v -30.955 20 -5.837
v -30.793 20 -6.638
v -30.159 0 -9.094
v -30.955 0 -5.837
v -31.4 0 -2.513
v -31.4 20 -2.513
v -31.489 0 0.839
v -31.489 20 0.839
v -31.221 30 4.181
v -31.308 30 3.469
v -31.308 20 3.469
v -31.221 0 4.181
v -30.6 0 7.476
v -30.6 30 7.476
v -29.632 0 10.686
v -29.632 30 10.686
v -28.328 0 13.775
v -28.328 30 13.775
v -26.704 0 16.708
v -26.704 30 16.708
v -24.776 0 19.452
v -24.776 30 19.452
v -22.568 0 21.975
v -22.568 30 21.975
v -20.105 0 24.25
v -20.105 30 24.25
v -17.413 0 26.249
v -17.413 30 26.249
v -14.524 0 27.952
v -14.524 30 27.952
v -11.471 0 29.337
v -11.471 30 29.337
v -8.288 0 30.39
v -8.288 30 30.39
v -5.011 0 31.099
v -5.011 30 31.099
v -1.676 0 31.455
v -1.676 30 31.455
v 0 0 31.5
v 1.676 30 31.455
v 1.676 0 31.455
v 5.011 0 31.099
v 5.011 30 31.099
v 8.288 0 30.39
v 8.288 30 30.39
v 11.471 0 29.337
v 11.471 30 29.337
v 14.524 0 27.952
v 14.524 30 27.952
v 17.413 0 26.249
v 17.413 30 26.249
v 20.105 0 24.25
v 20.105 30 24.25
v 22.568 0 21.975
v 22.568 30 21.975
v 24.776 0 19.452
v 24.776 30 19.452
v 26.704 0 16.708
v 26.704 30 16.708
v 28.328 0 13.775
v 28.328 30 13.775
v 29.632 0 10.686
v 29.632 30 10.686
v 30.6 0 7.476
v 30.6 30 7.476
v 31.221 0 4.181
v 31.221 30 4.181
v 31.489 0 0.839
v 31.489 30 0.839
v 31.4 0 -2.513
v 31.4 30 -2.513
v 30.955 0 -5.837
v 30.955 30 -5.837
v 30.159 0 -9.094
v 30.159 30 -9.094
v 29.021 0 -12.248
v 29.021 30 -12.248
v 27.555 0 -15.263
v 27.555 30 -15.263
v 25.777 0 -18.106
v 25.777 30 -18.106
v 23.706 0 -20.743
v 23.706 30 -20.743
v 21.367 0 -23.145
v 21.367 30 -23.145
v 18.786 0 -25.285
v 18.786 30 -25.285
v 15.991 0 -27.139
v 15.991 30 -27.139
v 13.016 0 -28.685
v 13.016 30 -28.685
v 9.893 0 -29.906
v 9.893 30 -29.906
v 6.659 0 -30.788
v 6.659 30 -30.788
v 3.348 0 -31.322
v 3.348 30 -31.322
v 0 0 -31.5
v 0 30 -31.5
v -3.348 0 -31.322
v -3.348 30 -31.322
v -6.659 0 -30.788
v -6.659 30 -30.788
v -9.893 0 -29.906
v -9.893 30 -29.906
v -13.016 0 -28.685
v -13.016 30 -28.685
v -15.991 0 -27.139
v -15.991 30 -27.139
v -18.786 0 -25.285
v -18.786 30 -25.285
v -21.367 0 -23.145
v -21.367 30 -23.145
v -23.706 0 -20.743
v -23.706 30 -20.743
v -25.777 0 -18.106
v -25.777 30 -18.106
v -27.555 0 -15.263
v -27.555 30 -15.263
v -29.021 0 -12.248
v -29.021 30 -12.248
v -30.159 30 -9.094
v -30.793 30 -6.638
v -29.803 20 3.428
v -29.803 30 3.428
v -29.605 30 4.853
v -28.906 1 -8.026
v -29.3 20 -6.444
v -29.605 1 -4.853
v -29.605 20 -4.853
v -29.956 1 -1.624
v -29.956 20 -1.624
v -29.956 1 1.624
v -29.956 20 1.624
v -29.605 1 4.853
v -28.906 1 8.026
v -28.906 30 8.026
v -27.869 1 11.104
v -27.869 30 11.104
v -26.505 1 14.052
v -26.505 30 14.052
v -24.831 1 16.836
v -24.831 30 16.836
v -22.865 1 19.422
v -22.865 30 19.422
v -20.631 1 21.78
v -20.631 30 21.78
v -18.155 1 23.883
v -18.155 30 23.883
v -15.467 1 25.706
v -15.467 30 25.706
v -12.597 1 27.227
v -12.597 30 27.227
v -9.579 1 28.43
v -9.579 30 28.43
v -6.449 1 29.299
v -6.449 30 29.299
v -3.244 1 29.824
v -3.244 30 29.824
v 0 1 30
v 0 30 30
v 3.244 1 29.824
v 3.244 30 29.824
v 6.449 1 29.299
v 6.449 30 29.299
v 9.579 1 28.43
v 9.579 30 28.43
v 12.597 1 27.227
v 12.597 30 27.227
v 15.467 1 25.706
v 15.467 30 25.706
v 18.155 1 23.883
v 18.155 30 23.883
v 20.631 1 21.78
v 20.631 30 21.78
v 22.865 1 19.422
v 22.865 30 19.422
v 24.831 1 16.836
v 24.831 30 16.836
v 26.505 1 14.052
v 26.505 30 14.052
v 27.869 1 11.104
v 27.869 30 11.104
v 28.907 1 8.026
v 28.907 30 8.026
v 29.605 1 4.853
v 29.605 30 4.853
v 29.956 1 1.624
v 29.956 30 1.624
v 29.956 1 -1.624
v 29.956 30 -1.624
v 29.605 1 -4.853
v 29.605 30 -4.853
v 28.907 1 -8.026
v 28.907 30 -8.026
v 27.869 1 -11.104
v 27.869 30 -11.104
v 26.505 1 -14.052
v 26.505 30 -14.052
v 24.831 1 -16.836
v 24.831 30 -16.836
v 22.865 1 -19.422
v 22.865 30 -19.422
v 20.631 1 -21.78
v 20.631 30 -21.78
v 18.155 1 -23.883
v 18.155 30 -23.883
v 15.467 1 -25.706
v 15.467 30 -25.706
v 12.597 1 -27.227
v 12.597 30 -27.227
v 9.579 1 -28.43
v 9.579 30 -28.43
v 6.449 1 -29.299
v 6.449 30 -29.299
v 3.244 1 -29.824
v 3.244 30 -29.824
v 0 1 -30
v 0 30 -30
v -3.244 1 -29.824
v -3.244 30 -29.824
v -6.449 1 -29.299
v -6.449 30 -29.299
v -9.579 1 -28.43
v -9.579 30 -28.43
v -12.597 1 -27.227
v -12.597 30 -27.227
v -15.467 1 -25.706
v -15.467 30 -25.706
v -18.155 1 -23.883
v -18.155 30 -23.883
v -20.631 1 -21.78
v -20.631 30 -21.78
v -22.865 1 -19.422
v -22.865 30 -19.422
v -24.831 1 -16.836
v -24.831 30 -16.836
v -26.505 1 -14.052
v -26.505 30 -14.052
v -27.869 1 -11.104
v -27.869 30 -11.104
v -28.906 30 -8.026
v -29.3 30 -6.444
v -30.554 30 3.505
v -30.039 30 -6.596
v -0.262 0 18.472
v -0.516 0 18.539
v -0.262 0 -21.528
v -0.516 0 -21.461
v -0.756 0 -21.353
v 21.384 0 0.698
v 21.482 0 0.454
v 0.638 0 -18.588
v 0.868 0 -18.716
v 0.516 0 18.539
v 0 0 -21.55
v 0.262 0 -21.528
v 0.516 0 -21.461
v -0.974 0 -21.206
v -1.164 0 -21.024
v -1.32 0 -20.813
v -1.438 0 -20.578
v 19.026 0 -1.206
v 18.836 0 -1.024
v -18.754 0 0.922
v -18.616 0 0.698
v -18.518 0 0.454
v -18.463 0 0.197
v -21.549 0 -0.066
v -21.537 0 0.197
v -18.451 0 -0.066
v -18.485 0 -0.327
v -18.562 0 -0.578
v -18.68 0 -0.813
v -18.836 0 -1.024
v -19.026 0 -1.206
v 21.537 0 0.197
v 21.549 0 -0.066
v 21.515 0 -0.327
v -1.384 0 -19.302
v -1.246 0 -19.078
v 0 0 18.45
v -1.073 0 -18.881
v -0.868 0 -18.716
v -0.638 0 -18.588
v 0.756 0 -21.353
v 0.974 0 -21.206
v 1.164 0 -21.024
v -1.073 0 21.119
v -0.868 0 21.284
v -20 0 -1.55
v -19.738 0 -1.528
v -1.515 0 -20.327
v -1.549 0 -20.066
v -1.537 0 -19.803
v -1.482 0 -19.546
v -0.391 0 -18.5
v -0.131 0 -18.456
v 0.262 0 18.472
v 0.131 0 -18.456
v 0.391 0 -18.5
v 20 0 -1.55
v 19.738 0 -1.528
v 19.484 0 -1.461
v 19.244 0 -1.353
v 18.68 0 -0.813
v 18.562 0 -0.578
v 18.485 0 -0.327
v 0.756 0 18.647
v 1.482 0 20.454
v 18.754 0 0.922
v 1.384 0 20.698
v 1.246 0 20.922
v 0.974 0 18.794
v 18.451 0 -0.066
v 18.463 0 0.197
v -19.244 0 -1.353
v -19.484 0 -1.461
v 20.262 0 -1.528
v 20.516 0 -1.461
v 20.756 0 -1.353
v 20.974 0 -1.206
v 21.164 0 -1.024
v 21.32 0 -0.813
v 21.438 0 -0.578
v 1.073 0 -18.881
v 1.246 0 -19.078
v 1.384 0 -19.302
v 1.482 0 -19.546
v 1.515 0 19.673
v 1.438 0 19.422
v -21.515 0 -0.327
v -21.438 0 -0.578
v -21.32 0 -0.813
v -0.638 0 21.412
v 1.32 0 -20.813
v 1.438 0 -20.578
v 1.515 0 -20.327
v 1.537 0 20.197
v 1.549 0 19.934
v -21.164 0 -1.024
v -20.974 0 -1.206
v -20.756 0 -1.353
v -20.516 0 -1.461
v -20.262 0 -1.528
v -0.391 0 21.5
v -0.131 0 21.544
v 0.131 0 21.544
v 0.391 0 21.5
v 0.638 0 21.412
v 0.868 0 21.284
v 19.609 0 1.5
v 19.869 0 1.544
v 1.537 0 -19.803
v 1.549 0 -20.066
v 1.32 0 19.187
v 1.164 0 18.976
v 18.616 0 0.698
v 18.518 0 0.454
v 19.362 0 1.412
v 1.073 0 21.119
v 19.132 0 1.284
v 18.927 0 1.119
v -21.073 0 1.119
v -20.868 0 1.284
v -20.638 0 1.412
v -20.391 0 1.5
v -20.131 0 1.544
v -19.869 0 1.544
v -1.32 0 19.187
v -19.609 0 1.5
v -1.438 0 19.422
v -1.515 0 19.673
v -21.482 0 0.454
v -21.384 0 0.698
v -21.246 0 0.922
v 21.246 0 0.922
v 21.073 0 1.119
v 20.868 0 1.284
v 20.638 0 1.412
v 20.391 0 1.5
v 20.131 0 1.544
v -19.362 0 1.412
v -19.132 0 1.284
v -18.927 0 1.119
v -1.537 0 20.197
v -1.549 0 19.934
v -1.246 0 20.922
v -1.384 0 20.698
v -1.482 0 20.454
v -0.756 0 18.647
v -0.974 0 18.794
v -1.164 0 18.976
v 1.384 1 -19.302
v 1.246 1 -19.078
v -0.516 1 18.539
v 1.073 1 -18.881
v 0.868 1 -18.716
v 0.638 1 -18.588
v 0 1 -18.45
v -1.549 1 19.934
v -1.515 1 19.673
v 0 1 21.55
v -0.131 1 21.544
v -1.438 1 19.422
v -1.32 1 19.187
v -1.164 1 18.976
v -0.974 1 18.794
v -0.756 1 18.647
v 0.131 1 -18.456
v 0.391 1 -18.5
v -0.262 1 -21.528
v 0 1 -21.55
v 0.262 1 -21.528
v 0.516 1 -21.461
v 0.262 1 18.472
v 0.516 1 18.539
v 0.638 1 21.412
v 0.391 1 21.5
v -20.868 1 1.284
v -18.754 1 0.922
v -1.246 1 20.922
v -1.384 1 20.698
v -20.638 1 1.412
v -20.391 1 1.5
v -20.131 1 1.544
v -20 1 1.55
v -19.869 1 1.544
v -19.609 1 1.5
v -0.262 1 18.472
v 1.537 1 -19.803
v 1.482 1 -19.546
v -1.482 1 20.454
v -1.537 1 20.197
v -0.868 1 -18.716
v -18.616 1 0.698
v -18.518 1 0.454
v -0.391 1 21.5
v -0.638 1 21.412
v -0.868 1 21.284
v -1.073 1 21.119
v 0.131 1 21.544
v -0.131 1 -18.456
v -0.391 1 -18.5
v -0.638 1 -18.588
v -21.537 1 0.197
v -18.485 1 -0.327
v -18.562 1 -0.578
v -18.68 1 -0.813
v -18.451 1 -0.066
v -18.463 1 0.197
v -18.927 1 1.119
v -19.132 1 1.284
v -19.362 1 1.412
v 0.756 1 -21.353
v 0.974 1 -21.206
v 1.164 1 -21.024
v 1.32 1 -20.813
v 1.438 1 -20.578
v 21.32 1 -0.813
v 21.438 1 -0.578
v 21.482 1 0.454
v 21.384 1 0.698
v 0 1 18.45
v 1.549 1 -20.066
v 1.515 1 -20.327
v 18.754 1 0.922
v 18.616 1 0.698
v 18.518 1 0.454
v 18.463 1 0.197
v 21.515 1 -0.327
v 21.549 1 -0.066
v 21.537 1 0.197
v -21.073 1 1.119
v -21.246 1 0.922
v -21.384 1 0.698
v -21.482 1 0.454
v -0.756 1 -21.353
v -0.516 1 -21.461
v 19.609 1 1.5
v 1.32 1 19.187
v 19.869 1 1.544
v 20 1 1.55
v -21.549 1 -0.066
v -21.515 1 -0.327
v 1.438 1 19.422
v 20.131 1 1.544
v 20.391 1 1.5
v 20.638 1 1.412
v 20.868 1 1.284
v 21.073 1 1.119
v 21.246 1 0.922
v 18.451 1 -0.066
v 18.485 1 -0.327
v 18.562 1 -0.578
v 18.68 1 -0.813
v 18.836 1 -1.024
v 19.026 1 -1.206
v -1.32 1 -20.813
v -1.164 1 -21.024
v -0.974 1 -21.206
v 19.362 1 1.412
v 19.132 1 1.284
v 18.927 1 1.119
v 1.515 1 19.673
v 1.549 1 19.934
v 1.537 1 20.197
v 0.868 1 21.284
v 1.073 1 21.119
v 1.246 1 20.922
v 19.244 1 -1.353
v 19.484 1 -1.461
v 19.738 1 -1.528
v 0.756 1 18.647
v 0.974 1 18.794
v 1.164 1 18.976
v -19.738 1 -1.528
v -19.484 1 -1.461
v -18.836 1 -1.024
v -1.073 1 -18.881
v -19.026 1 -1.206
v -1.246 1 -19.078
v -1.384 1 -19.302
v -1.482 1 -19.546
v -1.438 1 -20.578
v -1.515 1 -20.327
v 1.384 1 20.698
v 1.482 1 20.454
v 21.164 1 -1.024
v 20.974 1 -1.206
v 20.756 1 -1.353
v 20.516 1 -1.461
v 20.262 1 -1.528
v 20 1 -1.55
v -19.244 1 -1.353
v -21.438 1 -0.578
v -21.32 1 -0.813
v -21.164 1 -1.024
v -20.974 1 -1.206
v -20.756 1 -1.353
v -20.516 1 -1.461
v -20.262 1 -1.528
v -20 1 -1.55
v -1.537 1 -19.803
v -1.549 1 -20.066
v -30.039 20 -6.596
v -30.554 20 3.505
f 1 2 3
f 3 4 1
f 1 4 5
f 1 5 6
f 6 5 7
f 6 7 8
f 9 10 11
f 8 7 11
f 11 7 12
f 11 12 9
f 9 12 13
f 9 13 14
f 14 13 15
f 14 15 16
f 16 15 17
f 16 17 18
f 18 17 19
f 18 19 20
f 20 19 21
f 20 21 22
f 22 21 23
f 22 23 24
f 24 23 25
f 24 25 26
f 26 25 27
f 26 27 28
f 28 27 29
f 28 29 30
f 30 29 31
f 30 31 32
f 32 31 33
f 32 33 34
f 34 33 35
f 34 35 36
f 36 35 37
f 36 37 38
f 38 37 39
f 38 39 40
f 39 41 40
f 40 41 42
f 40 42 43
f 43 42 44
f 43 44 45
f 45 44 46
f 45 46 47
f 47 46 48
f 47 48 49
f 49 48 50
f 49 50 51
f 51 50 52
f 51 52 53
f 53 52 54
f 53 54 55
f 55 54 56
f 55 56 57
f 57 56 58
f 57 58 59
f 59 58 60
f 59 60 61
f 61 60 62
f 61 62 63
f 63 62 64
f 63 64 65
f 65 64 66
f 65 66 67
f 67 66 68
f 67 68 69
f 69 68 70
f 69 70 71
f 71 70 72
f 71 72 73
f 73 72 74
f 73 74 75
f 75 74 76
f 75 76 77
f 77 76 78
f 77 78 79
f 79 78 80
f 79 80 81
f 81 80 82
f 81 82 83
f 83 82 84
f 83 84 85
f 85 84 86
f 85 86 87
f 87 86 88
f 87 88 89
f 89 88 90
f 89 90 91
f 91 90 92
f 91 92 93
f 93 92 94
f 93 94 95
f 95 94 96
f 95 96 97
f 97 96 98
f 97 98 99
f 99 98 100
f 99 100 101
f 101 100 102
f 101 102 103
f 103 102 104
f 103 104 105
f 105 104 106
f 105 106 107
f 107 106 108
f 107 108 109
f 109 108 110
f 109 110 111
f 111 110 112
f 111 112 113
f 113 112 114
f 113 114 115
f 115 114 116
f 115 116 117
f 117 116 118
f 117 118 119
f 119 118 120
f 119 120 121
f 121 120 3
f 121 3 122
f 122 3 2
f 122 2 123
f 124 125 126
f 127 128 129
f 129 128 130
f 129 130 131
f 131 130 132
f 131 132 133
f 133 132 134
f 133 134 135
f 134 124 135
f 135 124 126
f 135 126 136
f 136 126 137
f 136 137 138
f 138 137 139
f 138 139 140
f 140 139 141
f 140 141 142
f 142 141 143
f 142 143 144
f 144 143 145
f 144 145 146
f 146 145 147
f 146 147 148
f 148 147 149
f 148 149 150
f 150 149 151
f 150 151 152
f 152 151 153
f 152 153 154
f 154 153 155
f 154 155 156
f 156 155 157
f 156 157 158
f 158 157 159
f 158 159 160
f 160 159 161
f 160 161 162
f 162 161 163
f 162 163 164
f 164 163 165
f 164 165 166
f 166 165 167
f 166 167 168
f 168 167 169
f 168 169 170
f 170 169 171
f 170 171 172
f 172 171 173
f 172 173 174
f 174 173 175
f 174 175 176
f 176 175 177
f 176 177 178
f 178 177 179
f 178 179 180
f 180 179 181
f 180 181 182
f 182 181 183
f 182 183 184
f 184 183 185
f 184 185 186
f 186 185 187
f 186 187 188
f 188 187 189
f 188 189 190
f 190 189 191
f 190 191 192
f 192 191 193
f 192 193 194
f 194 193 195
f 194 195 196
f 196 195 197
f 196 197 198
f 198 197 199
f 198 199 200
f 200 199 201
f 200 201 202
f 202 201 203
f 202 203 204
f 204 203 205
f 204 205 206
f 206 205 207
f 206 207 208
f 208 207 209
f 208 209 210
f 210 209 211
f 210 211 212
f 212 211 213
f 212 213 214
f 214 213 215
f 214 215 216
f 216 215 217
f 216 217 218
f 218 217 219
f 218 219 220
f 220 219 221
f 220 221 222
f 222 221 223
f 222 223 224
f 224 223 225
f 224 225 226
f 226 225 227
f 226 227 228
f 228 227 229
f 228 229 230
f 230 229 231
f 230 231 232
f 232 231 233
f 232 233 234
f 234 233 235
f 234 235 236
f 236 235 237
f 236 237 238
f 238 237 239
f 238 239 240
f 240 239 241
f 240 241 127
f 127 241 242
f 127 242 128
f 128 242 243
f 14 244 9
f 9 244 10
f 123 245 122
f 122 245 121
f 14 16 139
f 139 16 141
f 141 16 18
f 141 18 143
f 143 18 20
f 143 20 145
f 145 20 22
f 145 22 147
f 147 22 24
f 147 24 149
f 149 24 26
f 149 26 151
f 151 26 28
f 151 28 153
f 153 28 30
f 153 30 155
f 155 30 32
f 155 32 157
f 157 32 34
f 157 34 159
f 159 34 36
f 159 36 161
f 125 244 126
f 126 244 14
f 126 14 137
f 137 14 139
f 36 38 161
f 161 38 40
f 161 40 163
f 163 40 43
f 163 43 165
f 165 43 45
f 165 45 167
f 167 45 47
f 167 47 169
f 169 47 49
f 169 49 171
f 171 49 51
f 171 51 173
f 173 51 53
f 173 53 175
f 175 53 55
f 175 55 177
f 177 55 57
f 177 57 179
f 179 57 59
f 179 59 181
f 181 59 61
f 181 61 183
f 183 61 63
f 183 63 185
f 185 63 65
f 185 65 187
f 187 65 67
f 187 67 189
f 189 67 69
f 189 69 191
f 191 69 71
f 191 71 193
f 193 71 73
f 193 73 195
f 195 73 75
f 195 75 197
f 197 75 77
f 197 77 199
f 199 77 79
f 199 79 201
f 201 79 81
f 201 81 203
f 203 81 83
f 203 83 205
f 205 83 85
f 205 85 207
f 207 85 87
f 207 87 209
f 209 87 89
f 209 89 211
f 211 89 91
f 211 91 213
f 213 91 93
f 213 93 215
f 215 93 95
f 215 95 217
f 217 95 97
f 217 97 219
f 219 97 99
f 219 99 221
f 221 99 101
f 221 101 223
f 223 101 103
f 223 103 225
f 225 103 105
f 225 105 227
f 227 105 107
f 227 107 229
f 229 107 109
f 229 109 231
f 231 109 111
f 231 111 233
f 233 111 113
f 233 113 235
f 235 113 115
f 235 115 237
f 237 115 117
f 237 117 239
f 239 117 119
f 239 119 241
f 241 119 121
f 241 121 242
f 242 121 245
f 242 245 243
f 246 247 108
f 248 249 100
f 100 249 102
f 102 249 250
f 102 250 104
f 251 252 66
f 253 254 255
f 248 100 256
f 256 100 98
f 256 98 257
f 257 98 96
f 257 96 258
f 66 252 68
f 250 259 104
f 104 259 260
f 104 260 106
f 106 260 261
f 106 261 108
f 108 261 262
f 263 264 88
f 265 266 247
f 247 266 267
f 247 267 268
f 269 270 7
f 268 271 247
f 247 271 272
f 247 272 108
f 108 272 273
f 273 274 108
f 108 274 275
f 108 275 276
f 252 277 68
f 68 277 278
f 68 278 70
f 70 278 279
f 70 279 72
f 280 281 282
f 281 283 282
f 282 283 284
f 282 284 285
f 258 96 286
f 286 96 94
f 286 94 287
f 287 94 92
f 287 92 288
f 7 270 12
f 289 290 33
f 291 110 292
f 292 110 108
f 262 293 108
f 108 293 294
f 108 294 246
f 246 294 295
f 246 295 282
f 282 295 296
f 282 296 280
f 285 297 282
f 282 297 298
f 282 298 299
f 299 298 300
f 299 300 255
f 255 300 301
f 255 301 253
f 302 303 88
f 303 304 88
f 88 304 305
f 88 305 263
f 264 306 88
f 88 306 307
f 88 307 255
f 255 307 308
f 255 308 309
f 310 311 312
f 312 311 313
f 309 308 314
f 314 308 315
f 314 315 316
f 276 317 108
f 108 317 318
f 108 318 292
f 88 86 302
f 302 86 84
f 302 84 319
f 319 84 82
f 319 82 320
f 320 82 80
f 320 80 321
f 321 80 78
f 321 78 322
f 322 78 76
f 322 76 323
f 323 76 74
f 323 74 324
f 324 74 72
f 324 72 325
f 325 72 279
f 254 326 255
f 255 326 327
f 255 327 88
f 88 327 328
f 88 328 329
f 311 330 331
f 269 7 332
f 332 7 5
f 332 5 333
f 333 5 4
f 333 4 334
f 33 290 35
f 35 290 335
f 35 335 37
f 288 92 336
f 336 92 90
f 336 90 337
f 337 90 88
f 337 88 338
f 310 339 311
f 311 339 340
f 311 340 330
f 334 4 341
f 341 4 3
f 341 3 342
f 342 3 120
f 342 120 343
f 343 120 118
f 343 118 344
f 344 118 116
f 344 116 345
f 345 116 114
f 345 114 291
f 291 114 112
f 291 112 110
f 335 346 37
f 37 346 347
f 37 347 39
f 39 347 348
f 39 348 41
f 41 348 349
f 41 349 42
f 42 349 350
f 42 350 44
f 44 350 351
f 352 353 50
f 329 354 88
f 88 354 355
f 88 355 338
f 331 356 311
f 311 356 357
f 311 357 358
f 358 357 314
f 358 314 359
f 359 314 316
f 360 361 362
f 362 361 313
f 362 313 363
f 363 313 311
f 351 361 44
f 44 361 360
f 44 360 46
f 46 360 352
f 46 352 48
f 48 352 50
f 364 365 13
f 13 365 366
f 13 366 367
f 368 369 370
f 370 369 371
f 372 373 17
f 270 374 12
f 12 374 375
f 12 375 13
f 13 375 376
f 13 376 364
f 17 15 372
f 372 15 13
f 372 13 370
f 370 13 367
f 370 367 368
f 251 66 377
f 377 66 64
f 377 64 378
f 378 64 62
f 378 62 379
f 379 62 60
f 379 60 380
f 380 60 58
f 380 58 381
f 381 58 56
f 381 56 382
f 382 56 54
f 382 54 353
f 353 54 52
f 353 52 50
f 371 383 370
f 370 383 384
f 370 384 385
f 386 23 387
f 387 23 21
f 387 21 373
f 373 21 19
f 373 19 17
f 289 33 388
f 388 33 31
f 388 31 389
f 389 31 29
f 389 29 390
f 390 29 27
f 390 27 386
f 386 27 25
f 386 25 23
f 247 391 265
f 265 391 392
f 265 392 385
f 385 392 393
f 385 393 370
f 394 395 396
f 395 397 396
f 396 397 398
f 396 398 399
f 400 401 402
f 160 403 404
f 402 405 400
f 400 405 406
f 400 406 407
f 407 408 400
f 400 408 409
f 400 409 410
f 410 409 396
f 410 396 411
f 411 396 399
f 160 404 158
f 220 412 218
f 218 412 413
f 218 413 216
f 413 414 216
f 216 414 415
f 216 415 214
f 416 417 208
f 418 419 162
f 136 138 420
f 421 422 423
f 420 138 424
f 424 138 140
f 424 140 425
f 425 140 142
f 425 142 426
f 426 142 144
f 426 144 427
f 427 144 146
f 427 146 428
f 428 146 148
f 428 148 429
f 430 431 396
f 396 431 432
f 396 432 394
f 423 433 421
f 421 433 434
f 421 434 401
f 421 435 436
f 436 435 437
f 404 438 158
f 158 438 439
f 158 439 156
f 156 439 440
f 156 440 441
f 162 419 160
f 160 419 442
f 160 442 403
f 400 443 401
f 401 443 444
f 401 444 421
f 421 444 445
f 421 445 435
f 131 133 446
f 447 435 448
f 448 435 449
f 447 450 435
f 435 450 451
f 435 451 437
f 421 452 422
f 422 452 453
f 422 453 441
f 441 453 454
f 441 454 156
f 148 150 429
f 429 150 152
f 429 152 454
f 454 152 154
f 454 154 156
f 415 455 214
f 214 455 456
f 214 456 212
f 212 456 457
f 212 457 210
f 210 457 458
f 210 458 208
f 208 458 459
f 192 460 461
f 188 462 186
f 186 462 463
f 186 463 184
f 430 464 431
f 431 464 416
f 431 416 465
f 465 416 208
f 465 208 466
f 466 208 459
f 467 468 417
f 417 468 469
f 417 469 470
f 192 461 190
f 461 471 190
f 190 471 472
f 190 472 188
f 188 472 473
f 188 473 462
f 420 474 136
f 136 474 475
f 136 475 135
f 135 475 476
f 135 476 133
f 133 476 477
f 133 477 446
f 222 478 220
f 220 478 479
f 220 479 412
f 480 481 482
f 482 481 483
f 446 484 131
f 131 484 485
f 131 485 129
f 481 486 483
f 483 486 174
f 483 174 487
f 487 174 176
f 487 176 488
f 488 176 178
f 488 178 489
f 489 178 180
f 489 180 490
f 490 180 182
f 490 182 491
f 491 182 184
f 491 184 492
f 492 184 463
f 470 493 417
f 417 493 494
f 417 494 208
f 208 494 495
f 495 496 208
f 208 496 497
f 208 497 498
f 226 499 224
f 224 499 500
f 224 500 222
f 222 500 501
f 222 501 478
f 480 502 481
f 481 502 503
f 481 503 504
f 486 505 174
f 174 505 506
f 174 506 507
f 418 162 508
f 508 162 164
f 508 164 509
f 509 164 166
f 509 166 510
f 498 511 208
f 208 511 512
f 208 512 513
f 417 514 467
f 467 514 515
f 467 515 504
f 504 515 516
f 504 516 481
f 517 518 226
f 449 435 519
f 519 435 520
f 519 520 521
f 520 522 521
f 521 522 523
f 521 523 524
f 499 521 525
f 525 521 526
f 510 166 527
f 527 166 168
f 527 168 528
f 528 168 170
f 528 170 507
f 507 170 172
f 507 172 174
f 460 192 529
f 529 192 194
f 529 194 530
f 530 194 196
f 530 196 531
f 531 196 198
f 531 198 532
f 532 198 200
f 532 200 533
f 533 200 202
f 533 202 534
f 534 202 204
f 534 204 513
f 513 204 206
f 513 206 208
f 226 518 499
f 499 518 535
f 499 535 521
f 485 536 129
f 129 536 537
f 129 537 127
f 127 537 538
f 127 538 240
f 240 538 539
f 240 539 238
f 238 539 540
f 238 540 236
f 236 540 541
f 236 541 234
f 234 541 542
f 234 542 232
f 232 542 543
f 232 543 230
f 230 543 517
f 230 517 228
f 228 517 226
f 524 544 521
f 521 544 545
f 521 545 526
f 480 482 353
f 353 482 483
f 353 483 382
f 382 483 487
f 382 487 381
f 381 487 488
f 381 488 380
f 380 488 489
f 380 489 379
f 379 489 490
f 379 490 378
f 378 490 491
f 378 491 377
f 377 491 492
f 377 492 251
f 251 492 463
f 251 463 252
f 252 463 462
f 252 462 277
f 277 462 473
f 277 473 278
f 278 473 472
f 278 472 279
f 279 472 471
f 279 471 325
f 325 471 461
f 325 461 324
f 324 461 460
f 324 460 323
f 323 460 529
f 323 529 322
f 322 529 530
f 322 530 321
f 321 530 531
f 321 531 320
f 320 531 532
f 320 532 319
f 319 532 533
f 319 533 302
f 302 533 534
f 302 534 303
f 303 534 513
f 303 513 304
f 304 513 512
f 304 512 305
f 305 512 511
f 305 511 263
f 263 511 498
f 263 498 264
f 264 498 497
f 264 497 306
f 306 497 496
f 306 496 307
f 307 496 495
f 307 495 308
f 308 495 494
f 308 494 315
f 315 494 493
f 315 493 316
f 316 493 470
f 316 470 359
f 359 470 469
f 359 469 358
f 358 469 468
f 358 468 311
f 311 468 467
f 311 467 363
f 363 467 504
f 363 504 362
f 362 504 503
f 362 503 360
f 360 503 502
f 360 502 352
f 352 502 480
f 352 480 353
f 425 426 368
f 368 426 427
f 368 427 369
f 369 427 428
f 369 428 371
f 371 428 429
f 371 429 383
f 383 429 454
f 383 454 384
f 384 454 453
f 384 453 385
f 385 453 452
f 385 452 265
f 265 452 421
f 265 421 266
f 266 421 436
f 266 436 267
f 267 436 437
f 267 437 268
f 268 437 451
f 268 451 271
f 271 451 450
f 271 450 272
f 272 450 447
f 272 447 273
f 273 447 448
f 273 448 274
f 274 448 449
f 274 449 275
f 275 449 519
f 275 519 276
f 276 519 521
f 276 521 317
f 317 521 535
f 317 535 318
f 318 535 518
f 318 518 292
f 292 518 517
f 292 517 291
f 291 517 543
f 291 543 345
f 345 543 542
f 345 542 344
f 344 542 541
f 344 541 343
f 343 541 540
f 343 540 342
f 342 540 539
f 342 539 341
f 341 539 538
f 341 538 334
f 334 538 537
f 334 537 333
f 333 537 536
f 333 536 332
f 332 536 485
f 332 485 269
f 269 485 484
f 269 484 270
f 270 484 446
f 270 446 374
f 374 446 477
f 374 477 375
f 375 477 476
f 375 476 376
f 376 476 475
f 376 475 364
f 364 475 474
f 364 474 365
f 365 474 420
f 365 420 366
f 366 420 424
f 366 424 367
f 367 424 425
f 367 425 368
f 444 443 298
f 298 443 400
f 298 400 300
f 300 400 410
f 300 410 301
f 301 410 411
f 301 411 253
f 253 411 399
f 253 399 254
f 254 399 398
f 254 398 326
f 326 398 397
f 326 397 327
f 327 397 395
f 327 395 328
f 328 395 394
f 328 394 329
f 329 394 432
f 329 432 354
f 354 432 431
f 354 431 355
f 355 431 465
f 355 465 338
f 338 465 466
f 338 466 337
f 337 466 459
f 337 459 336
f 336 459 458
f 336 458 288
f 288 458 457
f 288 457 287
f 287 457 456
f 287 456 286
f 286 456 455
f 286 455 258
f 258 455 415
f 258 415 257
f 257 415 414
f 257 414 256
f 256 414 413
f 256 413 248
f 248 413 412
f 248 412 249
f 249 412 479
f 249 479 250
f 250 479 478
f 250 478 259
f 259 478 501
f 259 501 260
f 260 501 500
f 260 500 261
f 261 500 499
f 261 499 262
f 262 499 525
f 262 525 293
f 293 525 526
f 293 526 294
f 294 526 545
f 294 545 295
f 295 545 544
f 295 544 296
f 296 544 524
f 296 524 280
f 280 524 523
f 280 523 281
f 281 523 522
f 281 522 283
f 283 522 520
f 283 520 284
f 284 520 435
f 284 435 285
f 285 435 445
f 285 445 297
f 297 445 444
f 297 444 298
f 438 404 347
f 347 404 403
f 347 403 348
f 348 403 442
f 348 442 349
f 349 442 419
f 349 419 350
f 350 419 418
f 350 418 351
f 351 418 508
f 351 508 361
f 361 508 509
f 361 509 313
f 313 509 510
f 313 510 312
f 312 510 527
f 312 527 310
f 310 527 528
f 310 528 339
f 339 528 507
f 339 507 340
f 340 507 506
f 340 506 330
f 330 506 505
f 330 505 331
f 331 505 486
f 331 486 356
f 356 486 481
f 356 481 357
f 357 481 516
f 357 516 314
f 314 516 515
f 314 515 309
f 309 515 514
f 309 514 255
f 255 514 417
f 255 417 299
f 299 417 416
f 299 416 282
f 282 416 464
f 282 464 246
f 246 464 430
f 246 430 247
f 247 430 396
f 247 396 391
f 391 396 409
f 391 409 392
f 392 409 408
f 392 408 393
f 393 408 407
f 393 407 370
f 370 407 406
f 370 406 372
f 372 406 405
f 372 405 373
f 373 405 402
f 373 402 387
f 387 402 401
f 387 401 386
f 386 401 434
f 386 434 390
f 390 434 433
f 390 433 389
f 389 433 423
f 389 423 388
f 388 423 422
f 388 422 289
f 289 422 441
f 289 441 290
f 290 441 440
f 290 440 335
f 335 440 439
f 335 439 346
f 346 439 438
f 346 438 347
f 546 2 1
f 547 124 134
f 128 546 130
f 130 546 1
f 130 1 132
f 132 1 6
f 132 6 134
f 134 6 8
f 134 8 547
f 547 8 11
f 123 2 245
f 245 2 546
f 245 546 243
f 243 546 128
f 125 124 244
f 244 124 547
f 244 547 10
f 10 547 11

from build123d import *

# Parameters (mm, degrees)
SKETCH1_R           = 31.5
BOSS_EXTRUDE2_DEPTH = 30
SKETCH2_R           = 30
CUT_EXTRUDE1_DEPTH  = 29
SKETCH3_R           = 1.55
CUT_EXTRUDE2_DEPTH  = 54.70754137
CUT_EXTRUDE3_START  = 20
CUT_EXTRUDE3_DEPTH  = 10


# Read off the part's stored shape, not the designer's step: Cut-Extrude3
with BuildPart() as part:
    # Sketch1 → Boss-Extrude2 (new body)
    with BuildSketch(Plane(origin=(0, 0, 0), x_dir=(1, 0, 0), z_dir=(0, 1, 0))):
        with Locations(Location((0, 0, 0), (0, 0, 270))):
            Circle(SKETCH1_R)
    extrude(amount=BOSS_EXTRUDE2_DEPTH)

    # Sketch2 → Cut-Extrude1 (cut)
    with BuildSketch(Plane(origin=(0, 30, 0), x_dir=(1, 0, 0), z_dir=(0, 1, 0))):
        with Locations(Location((0, 0, 0), (0, 0, 270))):
            Circle(SKETCH2_R)
    extrude(amount=-CUT_EXTRUDE1_DEPTH, mode=Mode.SUBTRACT)

    # Sketch3 → Cut-Extrude2 (cut, through all)
    with BuildSketch(Plane.XZ):
        with Locations(Location((0, 20, 0), (0, 0, 270))):
            Circle(SKETCH3_R)
        with Locations(Location((-20, 0, 0), (0, 0, 270))):
            Circle(SKETCH3_R)
        with Locations(Location((0, -20, 0), (0, 0, 270))):
            Circle(SKETCH3_R)
        with Locations(Location((20, 0, 0), (0, 0, 270))):
            Circle(SKETCH3_R)
    extrude(amount=-CUT_EXTRUDE2_DEPTH, mode=Mode.SUBTRACT)

    # Cut-Extrude3 outline → Cut-Extrude3 (cut)
    with BuildSketch(Plane(origin=(0, 0, 0), x_dir=(1, 0, 0), z_dir=(0, 1, 0)).offset(CUT_EXTRUDE3_START)):
        with BuildLine():
            ThreePointArc((-29.299835483, 6.443573593), (-30.039033671, 6.596315408), (-30.792713244, 6.637681152))
            ThreePointArc((-30.792713244, 6.637681152), (-31.45908722, 1.604939654), (-31.308347945, -3.469488288))
            ThreePointArc((-31.308347945, -3.469488288), (-30.554371668, -3.505038211), (-29.803467005, -3.428316566))
            ThreePointArc((-29.803467005, -3.428316566), (-29.961035448, 1.528513956), (-29.299835483, 6.443573593))
        make_face()
    extrude(amount=CUT_EXTRUDE3_DEPTH, mode=Mode.SUBTRACT)


solid = part.part
